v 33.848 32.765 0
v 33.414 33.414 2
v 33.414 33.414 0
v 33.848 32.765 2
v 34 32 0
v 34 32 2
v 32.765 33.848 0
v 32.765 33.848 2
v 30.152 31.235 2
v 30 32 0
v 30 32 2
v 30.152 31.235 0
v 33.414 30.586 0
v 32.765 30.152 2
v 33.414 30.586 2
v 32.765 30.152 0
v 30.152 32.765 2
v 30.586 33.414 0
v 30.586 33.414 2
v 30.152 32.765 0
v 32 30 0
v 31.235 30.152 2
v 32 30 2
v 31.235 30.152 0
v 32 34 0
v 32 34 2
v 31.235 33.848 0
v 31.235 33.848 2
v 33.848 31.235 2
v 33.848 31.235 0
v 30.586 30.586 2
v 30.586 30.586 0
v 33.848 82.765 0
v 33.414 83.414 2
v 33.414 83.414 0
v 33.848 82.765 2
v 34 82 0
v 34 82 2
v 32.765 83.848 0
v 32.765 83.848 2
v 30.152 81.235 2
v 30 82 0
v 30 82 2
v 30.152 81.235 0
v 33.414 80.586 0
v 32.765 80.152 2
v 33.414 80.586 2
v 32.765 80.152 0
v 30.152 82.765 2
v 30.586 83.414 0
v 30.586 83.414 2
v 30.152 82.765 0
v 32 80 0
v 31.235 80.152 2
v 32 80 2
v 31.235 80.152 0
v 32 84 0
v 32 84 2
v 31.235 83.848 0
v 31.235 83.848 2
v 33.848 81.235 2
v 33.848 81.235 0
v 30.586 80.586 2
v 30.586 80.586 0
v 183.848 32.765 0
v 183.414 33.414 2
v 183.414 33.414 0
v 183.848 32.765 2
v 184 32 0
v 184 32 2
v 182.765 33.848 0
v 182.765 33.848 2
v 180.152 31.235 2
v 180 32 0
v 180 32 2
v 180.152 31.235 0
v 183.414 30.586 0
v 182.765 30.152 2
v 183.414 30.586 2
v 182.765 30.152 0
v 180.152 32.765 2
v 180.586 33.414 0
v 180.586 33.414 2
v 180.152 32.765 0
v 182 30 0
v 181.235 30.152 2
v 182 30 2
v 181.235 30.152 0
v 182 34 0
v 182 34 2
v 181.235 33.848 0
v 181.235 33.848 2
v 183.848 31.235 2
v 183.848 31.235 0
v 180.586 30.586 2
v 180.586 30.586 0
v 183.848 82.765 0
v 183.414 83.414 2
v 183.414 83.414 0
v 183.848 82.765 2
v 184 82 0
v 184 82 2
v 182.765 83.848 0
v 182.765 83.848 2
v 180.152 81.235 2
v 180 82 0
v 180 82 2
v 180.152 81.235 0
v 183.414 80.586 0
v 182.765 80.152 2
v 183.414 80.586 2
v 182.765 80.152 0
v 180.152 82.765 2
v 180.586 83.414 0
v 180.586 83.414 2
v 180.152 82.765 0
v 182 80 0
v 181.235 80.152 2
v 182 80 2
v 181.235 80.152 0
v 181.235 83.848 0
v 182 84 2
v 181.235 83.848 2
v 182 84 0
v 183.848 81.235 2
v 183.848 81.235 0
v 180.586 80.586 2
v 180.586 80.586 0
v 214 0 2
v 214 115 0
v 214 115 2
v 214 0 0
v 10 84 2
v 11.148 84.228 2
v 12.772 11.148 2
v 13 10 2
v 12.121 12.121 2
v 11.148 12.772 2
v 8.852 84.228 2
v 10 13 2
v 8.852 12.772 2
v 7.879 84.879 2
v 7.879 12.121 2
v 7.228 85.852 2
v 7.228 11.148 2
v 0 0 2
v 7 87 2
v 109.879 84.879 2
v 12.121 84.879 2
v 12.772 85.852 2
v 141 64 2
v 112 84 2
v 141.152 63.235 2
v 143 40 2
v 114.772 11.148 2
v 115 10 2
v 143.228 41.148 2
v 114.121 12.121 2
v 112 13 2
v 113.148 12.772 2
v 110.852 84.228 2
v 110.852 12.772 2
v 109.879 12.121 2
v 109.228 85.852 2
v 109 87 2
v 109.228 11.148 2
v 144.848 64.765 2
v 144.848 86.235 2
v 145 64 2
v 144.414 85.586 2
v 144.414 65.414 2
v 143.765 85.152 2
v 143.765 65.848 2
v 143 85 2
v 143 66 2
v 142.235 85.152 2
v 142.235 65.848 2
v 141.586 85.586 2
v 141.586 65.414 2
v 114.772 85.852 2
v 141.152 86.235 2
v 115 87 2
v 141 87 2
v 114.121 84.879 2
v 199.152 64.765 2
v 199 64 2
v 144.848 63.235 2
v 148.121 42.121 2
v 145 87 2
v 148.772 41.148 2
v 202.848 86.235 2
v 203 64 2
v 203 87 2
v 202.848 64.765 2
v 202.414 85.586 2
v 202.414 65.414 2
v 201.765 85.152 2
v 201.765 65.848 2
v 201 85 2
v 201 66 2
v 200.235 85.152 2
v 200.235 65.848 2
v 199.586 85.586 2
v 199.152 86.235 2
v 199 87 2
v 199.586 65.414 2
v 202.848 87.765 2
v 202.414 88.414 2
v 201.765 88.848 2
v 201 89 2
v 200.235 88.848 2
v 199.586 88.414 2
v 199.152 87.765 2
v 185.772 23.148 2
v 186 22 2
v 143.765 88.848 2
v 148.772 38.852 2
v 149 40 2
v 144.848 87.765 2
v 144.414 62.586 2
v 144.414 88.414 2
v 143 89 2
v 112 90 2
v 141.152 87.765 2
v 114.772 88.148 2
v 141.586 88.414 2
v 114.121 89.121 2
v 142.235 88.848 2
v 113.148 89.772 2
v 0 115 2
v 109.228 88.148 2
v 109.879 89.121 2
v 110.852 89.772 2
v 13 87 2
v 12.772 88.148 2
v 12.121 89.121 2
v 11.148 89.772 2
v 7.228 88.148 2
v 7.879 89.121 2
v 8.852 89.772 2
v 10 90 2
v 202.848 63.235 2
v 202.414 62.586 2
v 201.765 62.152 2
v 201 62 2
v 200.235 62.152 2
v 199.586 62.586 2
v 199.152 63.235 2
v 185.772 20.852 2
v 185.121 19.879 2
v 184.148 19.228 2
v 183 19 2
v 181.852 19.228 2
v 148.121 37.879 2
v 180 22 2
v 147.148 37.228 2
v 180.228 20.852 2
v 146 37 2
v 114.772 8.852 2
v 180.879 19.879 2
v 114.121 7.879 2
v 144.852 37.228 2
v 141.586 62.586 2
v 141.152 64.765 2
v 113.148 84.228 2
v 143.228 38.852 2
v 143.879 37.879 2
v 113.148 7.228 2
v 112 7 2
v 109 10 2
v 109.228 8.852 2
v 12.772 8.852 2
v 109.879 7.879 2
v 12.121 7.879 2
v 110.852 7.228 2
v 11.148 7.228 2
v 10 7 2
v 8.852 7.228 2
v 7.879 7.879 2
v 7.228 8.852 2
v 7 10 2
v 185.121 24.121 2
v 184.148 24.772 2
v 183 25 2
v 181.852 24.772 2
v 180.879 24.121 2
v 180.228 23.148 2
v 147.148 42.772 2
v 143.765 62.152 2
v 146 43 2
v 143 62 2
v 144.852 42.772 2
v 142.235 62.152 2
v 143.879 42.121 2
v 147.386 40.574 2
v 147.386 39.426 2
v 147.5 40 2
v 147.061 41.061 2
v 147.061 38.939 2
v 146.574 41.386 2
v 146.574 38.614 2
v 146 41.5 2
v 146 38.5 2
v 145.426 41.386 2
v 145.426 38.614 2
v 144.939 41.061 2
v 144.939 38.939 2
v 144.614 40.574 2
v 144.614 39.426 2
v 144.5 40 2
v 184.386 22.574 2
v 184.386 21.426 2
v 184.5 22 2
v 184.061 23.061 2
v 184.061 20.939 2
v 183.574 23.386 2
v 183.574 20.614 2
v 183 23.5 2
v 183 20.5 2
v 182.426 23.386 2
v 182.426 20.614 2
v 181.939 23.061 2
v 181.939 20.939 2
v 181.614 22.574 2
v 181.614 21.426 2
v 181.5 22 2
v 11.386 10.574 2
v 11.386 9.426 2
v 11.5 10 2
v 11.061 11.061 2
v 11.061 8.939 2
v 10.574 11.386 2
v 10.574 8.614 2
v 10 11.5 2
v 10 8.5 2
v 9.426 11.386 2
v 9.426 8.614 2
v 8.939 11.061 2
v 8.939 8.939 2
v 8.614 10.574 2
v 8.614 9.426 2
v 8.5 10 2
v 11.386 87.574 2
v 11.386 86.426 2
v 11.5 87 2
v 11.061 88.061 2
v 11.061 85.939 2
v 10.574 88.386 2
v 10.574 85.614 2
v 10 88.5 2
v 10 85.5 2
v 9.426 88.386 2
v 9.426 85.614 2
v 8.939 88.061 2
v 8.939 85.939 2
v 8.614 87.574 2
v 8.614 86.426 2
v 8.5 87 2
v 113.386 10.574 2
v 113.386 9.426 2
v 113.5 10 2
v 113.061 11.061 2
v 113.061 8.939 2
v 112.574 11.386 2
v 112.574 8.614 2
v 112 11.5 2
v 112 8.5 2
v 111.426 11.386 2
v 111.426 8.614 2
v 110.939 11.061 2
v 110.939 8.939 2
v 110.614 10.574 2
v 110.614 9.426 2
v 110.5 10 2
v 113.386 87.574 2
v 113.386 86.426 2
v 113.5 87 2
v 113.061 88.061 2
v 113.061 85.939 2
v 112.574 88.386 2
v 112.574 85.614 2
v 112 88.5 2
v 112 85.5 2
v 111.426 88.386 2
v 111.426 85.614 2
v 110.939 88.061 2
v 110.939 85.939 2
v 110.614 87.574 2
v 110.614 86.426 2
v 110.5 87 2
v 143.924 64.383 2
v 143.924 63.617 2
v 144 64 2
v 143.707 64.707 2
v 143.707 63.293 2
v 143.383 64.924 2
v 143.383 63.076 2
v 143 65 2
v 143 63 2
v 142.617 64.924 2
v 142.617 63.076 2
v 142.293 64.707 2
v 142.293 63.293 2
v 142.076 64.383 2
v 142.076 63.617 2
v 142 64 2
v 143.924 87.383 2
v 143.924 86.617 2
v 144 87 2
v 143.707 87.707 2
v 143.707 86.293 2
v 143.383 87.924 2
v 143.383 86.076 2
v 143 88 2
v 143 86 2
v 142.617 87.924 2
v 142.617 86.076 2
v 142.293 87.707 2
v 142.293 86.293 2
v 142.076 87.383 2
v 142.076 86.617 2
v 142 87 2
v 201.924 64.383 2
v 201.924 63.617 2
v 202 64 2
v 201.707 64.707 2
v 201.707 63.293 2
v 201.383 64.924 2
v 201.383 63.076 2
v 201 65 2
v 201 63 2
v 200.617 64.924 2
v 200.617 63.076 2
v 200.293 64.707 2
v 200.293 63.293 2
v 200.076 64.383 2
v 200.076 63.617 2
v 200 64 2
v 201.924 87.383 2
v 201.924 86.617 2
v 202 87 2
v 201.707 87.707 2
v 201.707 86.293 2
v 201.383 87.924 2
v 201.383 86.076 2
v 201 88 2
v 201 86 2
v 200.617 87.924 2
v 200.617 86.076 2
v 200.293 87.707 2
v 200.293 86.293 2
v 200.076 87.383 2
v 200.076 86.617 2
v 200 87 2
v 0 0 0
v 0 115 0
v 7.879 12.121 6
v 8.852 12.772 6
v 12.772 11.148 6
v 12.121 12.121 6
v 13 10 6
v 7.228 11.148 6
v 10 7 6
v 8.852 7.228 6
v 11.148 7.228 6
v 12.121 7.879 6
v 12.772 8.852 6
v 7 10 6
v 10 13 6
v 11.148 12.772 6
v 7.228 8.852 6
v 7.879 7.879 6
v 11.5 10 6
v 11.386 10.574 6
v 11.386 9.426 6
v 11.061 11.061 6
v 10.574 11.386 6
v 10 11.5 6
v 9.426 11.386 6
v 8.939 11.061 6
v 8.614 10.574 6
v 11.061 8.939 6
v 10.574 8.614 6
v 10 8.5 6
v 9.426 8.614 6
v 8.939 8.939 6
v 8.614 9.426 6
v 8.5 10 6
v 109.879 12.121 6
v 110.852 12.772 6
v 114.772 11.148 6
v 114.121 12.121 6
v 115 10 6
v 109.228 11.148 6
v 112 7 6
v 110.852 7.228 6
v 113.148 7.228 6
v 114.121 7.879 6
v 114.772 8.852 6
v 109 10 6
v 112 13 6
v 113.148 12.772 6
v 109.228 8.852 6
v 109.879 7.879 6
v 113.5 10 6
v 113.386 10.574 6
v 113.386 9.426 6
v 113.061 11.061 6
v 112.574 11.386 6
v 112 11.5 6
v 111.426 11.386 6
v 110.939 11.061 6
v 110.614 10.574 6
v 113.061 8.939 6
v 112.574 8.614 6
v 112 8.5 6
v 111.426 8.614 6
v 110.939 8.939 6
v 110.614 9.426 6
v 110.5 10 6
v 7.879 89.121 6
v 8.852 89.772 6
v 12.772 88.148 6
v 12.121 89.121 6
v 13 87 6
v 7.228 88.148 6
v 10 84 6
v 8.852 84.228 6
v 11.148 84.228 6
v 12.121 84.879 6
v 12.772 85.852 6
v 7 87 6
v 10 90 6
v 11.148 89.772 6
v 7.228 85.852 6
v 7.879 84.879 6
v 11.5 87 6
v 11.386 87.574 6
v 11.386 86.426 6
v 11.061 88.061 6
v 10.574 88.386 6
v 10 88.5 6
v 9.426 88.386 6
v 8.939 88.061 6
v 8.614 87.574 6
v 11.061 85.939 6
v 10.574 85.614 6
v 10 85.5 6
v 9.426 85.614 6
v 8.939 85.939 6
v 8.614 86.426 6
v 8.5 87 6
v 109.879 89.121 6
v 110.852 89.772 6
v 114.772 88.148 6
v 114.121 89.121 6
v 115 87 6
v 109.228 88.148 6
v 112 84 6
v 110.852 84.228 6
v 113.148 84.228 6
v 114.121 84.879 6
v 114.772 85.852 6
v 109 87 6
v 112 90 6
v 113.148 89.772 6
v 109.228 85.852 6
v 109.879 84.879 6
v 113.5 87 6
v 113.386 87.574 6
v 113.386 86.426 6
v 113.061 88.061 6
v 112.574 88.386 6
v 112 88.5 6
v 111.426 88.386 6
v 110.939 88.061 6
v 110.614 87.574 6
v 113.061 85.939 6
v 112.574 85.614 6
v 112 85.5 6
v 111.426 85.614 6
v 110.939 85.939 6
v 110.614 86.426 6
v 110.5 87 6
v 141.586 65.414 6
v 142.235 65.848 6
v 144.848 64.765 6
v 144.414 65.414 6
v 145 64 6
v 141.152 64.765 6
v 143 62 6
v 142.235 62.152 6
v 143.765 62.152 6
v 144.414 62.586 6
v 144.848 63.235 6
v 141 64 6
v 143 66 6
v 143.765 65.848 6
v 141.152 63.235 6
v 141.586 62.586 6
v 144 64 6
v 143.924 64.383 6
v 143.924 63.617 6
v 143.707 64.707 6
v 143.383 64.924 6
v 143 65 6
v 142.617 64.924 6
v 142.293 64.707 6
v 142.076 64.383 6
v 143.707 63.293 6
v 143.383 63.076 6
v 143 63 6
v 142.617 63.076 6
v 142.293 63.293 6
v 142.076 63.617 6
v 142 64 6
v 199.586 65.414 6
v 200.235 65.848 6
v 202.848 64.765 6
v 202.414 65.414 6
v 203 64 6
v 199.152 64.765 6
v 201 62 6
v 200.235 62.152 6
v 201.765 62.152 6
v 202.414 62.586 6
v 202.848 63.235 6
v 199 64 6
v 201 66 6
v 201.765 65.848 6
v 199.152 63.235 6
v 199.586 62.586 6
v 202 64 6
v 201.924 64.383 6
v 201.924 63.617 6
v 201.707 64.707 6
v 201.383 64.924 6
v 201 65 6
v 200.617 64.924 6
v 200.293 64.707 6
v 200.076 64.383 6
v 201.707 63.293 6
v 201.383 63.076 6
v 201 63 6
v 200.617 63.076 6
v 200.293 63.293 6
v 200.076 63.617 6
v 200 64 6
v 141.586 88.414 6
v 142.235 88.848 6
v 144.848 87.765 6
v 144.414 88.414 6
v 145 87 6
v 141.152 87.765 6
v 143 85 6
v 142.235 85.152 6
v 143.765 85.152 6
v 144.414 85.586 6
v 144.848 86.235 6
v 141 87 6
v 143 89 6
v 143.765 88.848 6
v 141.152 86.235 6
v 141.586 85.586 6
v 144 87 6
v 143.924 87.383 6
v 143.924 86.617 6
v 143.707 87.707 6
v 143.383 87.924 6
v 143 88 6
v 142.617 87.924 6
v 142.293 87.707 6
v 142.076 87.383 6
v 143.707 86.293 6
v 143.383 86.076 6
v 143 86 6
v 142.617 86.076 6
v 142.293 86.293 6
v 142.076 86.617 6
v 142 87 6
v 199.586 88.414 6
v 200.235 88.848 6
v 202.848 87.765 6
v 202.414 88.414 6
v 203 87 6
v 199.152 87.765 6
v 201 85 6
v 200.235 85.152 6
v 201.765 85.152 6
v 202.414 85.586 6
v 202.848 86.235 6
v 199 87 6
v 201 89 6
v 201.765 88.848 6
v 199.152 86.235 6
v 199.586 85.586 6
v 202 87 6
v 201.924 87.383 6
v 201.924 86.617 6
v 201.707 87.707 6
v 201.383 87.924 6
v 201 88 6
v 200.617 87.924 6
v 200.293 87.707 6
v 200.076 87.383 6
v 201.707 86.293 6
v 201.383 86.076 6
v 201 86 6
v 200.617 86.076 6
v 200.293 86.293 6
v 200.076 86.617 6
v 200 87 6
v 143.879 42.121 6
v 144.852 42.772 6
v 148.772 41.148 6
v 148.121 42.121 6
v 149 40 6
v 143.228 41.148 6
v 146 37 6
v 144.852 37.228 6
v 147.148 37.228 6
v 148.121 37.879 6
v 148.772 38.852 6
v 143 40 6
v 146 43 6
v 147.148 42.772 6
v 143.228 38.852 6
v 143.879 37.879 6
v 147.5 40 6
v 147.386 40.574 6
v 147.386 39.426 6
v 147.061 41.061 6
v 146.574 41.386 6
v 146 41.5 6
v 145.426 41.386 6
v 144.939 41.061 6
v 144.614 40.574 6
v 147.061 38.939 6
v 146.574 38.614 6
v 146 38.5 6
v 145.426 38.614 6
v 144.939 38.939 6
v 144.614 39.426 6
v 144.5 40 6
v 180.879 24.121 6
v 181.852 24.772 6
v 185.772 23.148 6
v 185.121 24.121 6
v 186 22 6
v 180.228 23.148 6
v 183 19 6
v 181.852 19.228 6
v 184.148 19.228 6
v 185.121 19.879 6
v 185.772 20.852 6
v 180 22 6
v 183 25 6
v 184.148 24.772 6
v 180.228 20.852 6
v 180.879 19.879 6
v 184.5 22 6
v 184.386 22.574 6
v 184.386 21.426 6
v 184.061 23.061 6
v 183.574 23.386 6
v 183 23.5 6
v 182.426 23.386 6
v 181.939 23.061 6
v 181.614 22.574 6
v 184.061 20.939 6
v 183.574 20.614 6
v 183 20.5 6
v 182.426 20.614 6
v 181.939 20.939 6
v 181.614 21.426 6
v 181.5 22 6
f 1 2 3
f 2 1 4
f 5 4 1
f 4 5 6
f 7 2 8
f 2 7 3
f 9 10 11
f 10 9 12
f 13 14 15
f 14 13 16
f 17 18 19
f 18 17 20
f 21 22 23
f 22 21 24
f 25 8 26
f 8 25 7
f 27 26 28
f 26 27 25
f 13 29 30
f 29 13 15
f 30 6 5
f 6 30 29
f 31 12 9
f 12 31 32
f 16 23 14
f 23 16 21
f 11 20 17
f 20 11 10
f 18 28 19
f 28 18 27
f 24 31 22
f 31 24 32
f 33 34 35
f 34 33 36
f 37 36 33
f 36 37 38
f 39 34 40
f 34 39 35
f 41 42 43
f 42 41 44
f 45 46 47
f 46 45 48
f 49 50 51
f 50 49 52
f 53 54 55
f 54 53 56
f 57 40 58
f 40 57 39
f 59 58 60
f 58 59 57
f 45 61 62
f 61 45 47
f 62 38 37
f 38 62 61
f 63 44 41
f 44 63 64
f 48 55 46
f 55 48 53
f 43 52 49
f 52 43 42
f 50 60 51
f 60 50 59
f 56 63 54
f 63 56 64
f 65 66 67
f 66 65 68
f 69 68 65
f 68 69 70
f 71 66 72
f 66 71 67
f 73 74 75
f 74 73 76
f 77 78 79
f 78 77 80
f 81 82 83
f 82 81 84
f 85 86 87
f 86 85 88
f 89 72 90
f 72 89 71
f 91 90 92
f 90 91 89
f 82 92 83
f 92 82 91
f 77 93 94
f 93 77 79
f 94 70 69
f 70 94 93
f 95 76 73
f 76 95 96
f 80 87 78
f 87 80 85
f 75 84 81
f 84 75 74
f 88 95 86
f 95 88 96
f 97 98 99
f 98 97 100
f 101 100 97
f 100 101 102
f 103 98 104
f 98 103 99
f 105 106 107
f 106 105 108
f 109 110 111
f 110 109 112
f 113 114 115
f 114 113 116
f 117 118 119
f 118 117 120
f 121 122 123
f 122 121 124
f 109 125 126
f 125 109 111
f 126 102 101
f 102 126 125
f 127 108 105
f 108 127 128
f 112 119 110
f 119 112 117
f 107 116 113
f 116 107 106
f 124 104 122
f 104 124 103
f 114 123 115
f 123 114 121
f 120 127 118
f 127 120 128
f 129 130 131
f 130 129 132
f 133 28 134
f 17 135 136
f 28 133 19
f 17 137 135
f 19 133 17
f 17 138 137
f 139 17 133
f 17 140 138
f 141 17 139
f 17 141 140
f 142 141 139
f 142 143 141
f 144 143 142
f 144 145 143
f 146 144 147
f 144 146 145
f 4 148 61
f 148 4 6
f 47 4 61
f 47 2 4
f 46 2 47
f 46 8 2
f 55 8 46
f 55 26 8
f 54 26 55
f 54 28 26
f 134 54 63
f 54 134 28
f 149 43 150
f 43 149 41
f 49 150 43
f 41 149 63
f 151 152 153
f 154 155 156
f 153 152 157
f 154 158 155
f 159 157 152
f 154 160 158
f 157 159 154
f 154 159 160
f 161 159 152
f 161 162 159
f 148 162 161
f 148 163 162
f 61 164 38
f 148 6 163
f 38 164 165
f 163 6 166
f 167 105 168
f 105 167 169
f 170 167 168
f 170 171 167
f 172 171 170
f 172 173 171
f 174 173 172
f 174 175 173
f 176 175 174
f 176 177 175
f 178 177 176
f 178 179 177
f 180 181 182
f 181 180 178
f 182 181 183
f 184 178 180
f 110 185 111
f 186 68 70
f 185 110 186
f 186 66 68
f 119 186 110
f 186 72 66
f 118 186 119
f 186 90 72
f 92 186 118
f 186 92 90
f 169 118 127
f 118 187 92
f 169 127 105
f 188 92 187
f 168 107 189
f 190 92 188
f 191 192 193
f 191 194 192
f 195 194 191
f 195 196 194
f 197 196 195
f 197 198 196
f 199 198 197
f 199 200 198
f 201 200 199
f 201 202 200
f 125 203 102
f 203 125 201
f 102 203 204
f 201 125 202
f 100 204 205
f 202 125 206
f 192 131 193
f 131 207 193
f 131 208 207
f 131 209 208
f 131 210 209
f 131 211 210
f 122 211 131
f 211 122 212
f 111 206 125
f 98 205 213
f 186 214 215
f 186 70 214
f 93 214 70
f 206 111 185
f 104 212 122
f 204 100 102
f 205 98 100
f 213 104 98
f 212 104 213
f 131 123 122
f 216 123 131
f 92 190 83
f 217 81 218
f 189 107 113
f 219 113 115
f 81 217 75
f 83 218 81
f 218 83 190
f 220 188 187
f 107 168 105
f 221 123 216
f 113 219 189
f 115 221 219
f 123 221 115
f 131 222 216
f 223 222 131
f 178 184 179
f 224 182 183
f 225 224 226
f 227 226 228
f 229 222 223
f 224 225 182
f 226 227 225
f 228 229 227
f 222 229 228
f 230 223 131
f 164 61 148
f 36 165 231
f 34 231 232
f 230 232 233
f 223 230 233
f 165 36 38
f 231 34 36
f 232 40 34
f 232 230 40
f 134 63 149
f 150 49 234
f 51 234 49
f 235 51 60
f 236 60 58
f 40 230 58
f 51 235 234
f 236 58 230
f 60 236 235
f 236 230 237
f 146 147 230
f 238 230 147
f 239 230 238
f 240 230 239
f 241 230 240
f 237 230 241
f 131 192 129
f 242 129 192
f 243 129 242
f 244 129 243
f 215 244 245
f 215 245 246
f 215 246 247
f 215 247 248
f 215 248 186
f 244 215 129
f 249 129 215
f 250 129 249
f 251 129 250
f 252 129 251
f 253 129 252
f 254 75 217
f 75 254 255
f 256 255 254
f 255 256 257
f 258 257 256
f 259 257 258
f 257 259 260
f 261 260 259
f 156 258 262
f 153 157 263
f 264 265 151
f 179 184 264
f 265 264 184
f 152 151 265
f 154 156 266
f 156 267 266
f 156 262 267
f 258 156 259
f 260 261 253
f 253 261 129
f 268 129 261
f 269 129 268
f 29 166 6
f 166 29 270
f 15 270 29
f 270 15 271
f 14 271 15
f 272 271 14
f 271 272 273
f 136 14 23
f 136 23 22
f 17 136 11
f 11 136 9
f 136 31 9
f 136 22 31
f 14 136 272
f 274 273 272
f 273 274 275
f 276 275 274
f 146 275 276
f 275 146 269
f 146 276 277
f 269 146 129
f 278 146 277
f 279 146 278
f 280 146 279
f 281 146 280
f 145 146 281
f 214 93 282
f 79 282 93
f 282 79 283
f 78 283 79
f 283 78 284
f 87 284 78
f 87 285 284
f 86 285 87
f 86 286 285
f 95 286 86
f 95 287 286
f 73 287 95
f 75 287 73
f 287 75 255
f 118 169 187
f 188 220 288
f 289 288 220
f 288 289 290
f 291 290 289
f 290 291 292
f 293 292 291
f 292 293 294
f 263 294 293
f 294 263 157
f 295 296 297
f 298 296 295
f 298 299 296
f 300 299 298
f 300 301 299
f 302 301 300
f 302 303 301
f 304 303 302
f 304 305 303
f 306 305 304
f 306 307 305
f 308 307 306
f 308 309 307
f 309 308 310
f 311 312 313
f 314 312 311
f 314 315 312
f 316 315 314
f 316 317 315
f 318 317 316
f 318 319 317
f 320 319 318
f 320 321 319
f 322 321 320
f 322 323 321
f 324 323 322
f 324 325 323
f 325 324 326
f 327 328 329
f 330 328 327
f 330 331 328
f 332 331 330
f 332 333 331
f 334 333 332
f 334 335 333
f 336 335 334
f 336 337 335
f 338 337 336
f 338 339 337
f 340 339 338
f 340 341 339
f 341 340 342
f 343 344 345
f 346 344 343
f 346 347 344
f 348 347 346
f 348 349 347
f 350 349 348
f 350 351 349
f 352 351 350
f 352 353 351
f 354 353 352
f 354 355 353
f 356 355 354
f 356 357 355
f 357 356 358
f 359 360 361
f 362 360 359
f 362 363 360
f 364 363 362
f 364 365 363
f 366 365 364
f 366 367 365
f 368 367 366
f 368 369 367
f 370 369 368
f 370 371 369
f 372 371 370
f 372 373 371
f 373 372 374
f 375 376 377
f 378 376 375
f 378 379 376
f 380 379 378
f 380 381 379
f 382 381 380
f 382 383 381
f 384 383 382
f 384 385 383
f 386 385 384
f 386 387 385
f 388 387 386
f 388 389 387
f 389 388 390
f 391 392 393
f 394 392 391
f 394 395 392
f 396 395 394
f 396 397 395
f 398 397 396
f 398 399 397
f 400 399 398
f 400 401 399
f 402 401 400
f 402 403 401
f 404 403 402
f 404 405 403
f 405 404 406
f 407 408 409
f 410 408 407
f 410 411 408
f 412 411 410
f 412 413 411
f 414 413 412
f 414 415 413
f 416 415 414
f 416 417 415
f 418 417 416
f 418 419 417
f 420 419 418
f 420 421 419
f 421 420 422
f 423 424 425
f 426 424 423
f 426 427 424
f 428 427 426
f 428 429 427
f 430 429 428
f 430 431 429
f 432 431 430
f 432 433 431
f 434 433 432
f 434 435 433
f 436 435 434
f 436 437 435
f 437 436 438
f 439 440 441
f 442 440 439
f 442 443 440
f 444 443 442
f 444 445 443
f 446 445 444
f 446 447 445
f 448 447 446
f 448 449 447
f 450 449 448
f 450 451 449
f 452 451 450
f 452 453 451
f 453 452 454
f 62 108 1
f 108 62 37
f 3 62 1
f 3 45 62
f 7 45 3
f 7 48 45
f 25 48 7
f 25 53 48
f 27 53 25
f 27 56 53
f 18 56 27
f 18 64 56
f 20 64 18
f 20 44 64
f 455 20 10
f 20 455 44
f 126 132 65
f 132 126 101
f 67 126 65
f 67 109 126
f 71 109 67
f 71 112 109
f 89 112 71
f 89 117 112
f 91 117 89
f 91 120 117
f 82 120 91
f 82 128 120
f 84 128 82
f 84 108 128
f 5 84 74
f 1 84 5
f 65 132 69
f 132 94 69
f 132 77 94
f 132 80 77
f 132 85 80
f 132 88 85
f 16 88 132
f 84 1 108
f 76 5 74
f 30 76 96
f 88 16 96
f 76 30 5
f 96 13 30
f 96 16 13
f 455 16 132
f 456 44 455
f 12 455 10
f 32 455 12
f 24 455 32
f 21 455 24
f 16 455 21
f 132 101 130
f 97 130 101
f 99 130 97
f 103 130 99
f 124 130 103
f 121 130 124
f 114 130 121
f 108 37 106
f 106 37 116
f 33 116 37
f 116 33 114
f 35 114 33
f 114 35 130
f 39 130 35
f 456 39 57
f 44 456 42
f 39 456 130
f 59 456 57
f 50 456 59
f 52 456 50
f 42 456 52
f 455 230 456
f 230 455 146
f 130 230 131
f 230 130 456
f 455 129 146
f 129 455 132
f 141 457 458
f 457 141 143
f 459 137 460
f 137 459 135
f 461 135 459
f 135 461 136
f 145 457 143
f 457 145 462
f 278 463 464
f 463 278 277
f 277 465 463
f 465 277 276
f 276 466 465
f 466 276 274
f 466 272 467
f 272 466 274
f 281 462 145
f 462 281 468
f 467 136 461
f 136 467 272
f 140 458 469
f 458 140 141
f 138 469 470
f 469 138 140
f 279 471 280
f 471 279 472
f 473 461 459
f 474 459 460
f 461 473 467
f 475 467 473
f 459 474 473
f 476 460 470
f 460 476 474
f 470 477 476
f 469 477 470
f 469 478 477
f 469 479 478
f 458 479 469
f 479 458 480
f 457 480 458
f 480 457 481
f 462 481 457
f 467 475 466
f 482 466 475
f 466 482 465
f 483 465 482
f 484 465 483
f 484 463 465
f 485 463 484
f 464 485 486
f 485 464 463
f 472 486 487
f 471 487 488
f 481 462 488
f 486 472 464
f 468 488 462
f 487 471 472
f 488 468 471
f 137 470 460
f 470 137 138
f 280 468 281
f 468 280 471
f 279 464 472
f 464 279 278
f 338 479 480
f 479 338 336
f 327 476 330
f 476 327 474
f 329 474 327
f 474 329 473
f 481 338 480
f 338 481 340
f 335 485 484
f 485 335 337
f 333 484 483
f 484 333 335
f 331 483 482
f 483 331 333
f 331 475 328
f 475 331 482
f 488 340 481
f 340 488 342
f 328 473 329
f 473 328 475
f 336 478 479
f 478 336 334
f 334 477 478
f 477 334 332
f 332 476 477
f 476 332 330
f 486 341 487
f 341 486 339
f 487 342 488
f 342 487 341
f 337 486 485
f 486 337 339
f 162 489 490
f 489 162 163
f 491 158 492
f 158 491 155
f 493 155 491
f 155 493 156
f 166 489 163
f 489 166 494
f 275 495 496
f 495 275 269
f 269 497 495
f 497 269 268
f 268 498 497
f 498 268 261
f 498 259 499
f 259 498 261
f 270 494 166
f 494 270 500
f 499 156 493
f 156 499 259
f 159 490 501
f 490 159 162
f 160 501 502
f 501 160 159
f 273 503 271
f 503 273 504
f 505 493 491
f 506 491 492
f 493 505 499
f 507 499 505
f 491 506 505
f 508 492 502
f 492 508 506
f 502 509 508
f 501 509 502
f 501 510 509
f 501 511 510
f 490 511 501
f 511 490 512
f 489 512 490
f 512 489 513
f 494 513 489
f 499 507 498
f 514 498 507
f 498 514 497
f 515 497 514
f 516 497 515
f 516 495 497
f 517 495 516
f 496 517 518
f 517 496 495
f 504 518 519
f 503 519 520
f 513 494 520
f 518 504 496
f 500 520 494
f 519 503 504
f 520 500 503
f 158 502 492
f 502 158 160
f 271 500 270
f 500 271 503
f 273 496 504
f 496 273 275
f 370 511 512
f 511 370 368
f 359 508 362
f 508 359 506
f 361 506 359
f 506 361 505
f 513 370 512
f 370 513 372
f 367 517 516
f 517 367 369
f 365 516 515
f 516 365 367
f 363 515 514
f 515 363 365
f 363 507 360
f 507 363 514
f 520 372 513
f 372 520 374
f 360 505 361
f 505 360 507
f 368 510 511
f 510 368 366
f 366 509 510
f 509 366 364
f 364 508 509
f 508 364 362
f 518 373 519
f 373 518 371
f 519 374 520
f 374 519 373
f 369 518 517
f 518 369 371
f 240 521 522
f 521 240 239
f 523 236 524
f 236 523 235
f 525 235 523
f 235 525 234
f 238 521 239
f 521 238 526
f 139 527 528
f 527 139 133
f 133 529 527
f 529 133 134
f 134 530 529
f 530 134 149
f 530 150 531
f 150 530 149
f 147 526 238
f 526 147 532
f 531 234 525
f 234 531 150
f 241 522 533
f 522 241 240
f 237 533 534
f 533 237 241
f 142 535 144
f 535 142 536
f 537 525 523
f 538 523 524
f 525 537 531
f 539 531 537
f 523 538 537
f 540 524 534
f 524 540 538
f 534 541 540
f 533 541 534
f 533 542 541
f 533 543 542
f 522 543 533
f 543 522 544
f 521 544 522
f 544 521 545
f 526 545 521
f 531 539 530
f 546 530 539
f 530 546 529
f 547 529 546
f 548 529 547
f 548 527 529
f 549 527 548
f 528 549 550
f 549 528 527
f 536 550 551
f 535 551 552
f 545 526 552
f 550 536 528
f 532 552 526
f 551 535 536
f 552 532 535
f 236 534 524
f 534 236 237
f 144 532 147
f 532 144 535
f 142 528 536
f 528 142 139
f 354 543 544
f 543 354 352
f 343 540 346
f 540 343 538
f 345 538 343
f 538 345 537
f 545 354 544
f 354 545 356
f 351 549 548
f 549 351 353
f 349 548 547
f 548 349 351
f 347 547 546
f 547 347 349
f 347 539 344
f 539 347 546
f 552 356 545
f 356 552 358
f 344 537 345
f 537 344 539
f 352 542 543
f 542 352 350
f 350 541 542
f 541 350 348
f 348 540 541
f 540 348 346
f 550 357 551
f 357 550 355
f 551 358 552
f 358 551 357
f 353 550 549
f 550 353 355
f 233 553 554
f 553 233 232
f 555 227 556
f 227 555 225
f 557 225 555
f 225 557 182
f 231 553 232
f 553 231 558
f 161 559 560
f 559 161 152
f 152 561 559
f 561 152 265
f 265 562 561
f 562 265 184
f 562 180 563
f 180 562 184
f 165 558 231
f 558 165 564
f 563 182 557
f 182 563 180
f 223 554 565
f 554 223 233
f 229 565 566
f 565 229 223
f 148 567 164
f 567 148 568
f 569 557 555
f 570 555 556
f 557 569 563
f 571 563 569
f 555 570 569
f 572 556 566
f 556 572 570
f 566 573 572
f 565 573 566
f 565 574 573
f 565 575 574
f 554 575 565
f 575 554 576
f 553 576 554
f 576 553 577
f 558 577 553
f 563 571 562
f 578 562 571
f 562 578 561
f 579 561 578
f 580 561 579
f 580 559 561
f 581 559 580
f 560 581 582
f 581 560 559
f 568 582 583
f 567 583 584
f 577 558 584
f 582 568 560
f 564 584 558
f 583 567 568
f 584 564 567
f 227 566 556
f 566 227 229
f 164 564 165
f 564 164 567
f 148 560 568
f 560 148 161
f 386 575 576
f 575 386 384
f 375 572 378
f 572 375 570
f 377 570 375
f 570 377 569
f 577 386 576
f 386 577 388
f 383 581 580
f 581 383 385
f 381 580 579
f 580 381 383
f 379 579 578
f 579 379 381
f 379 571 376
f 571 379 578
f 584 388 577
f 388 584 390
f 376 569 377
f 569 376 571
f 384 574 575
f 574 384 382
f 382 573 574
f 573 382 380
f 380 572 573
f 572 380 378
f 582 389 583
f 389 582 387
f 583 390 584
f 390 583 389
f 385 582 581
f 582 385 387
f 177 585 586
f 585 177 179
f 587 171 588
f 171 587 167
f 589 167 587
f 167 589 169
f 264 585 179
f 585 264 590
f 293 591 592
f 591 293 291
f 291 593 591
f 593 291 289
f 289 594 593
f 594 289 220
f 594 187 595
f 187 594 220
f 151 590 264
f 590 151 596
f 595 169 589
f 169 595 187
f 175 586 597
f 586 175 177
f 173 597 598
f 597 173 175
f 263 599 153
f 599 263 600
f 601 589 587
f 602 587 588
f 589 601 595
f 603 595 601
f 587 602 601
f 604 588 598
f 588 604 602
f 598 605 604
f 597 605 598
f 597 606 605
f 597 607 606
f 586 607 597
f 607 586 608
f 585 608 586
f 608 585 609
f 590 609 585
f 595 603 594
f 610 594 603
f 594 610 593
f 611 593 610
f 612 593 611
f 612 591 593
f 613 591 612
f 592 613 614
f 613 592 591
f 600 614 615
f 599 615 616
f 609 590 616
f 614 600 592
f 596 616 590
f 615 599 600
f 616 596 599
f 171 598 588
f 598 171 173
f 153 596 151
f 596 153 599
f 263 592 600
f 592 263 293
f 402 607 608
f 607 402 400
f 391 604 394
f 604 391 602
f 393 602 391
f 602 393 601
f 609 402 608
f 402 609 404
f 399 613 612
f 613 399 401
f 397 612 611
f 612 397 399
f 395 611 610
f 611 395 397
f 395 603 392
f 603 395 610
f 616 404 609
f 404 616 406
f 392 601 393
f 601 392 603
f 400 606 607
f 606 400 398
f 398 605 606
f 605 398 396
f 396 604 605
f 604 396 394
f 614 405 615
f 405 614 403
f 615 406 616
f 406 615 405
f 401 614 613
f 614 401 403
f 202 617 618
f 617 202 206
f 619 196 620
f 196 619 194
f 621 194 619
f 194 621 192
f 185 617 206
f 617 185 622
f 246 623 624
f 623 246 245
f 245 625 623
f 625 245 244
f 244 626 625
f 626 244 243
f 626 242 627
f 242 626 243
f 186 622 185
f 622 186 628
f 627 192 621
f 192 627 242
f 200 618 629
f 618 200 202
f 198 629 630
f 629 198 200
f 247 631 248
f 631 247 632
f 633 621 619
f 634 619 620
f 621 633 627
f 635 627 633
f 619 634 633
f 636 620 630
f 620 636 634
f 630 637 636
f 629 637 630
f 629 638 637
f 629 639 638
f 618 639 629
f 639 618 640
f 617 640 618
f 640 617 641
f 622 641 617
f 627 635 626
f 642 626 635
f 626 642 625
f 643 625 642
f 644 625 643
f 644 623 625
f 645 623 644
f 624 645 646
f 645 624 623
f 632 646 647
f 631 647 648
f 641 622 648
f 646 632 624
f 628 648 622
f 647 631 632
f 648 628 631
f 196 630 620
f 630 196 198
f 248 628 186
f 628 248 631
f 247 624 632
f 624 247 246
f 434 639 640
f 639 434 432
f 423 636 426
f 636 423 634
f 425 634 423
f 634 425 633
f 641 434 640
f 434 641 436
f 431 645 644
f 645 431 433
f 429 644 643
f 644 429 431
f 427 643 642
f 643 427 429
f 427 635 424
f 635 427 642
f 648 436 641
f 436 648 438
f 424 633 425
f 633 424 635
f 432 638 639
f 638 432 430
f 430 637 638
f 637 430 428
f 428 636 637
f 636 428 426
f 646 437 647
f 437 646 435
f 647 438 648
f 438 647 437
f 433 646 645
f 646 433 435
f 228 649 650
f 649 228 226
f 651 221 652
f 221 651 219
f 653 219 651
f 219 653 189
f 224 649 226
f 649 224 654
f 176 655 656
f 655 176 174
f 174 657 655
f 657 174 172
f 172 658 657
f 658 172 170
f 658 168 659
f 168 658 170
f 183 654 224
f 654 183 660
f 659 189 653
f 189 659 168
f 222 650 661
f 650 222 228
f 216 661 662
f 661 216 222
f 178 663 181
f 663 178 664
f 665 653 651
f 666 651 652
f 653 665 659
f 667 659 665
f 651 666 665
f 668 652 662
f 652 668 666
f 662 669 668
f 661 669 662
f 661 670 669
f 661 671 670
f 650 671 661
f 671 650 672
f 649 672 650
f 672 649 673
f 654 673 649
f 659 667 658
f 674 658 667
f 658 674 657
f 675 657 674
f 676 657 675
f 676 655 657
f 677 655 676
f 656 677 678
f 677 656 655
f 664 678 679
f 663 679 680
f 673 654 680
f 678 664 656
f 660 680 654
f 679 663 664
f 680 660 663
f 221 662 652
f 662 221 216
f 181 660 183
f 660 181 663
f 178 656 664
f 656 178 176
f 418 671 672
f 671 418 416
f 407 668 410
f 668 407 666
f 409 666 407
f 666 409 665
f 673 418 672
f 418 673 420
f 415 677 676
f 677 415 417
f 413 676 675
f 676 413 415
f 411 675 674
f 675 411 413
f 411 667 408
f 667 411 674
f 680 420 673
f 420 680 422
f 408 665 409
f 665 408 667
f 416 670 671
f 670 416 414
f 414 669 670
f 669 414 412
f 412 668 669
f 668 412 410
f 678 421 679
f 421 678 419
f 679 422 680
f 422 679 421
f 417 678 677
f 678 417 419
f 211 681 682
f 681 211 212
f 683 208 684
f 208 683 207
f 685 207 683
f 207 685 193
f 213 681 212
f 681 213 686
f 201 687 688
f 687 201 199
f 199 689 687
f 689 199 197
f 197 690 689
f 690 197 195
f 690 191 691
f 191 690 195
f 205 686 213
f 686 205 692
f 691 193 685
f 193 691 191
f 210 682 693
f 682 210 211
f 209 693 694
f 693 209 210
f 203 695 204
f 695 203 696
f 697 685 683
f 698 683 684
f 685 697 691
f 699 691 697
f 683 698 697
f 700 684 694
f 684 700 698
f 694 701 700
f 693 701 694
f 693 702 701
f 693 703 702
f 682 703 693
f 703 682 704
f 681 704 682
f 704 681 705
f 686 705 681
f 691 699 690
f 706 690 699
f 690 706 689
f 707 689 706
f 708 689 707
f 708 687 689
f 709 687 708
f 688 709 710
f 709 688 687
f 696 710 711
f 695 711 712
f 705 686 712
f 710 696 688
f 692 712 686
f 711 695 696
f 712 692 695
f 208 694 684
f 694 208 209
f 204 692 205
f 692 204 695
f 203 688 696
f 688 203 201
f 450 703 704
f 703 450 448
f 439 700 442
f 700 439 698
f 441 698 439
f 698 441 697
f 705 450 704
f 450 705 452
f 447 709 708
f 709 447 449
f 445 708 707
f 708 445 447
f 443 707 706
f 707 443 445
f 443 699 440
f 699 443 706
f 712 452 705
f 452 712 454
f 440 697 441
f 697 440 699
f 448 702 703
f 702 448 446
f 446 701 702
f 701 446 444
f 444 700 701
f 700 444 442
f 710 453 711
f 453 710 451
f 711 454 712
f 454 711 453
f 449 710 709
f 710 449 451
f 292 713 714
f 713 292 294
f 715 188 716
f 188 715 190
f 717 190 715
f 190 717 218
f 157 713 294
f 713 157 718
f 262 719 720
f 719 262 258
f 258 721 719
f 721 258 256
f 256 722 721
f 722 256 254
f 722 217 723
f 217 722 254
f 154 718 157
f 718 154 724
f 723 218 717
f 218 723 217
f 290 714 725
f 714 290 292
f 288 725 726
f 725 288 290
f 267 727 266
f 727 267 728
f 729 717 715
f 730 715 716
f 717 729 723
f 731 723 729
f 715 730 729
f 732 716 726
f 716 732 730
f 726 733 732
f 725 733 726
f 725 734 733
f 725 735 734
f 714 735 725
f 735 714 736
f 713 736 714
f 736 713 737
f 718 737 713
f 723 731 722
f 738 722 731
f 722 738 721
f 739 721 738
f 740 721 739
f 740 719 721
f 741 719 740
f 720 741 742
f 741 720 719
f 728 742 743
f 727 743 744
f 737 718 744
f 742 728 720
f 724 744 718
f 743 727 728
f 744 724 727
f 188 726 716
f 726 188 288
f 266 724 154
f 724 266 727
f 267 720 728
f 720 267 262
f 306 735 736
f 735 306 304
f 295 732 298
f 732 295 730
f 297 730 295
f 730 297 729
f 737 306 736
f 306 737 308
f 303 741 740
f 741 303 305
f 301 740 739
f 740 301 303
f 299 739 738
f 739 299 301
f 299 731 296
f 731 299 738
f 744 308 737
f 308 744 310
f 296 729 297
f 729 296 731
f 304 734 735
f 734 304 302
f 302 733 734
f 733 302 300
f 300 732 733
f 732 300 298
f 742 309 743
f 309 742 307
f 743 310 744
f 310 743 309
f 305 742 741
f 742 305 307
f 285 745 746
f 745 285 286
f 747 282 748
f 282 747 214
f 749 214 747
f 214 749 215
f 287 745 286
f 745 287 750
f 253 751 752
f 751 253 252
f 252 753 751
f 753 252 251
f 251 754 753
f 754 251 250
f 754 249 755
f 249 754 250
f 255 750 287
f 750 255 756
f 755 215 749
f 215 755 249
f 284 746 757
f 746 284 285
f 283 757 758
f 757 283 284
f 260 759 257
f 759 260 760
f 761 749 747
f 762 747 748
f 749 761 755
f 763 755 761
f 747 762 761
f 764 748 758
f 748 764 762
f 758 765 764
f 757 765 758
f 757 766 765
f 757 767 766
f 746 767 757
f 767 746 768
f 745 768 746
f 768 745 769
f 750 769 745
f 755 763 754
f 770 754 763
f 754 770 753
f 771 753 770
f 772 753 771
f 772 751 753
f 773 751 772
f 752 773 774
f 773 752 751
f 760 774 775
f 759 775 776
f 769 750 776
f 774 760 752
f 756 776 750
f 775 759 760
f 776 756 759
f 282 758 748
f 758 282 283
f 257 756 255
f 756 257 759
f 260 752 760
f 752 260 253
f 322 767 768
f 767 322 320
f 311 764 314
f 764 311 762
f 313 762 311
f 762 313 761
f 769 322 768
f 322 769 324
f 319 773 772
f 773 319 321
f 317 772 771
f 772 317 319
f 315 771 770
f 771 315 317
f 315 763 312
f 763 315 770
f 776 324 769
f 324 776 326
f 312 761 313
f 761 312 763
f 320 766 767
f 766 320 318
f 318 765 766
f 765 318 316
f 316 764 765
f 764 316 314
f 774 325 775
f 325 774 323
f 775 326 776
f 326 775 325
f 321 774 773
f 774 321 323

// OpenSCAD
$fn=16;
outer_y = 115;
outer_x = 214;
legs_height = 6;

module bottom_mounts() {
  translate([32, 32, -0.1]) cylinder(d = 4, h = legs_height);
  translate([32, 82, -0.1]) cylinder(d = 4, h = legs_height);

  translate([182, 32, -0.1]) cylinder(d = 4, h = legs_height);
  translate([182, 82, -0.1]) cylinder(d = 4, h = legs_height);
}

module bottom() {
  difference() {
    cube([outer_x, outer_y, 2]);
    bottom_mounts();
  }
}

module bpi_m2_zero_mounts() {
  start_x = 143;
  start_y = 64;
  x_dist = 58;
  y_dist = 23;

  module mount() {
    difference() {
      cylinder(d = 4, h = legs_height);
      cylinder(d = 2, h = legs_height + 1);
    }
  }

  translate([start_x, start_y, 0]) mount();
  translate([start_x + x_dist, start_y, 0]) mount();
  translate([start_x, start_y + y_dist, 0]) mount();
  translate([start_x + x_dist, start_y + y_dist, 0]) mount();
}

module skr_14t_mounts() {
  start_x = 10;
  start_y = 10;
  x_dist = 102;
  y_dist = 77;

  module mount() {
    difference() {
      cylinder(d = 6, h = legs_height);
      cylinder(d = 3, h = legs_height + 1);
    }
  }

  translate([start_x, start_y, 0]) mount();
  translate([start_x + x_dist, start_y, 0]) mount();
  translate([start_x, start_y + y_dist, 0]) mount();
  translate([start_x + x_dist, start_y + y_dist, 0]) mount();
}

module lm2596_mounts() {
  start_x = 146;
  start_y = 40;
  x_dist = 37;
  y_dist = -18;

  module mount() {
    difference() {
      cylinder(d = 6, h = legs_height);
      cylinder(d = 3, h = legs_height + 1);
    }
  }

  translate([start_x, start_y, 0]) mount();
  translate([start_x + x_dist, start_y + y_dist, 0]) mount();
}

bottom();
skr_14t_mounts();
bpi_m2_zero_mounts();
lm2596_mounts();
